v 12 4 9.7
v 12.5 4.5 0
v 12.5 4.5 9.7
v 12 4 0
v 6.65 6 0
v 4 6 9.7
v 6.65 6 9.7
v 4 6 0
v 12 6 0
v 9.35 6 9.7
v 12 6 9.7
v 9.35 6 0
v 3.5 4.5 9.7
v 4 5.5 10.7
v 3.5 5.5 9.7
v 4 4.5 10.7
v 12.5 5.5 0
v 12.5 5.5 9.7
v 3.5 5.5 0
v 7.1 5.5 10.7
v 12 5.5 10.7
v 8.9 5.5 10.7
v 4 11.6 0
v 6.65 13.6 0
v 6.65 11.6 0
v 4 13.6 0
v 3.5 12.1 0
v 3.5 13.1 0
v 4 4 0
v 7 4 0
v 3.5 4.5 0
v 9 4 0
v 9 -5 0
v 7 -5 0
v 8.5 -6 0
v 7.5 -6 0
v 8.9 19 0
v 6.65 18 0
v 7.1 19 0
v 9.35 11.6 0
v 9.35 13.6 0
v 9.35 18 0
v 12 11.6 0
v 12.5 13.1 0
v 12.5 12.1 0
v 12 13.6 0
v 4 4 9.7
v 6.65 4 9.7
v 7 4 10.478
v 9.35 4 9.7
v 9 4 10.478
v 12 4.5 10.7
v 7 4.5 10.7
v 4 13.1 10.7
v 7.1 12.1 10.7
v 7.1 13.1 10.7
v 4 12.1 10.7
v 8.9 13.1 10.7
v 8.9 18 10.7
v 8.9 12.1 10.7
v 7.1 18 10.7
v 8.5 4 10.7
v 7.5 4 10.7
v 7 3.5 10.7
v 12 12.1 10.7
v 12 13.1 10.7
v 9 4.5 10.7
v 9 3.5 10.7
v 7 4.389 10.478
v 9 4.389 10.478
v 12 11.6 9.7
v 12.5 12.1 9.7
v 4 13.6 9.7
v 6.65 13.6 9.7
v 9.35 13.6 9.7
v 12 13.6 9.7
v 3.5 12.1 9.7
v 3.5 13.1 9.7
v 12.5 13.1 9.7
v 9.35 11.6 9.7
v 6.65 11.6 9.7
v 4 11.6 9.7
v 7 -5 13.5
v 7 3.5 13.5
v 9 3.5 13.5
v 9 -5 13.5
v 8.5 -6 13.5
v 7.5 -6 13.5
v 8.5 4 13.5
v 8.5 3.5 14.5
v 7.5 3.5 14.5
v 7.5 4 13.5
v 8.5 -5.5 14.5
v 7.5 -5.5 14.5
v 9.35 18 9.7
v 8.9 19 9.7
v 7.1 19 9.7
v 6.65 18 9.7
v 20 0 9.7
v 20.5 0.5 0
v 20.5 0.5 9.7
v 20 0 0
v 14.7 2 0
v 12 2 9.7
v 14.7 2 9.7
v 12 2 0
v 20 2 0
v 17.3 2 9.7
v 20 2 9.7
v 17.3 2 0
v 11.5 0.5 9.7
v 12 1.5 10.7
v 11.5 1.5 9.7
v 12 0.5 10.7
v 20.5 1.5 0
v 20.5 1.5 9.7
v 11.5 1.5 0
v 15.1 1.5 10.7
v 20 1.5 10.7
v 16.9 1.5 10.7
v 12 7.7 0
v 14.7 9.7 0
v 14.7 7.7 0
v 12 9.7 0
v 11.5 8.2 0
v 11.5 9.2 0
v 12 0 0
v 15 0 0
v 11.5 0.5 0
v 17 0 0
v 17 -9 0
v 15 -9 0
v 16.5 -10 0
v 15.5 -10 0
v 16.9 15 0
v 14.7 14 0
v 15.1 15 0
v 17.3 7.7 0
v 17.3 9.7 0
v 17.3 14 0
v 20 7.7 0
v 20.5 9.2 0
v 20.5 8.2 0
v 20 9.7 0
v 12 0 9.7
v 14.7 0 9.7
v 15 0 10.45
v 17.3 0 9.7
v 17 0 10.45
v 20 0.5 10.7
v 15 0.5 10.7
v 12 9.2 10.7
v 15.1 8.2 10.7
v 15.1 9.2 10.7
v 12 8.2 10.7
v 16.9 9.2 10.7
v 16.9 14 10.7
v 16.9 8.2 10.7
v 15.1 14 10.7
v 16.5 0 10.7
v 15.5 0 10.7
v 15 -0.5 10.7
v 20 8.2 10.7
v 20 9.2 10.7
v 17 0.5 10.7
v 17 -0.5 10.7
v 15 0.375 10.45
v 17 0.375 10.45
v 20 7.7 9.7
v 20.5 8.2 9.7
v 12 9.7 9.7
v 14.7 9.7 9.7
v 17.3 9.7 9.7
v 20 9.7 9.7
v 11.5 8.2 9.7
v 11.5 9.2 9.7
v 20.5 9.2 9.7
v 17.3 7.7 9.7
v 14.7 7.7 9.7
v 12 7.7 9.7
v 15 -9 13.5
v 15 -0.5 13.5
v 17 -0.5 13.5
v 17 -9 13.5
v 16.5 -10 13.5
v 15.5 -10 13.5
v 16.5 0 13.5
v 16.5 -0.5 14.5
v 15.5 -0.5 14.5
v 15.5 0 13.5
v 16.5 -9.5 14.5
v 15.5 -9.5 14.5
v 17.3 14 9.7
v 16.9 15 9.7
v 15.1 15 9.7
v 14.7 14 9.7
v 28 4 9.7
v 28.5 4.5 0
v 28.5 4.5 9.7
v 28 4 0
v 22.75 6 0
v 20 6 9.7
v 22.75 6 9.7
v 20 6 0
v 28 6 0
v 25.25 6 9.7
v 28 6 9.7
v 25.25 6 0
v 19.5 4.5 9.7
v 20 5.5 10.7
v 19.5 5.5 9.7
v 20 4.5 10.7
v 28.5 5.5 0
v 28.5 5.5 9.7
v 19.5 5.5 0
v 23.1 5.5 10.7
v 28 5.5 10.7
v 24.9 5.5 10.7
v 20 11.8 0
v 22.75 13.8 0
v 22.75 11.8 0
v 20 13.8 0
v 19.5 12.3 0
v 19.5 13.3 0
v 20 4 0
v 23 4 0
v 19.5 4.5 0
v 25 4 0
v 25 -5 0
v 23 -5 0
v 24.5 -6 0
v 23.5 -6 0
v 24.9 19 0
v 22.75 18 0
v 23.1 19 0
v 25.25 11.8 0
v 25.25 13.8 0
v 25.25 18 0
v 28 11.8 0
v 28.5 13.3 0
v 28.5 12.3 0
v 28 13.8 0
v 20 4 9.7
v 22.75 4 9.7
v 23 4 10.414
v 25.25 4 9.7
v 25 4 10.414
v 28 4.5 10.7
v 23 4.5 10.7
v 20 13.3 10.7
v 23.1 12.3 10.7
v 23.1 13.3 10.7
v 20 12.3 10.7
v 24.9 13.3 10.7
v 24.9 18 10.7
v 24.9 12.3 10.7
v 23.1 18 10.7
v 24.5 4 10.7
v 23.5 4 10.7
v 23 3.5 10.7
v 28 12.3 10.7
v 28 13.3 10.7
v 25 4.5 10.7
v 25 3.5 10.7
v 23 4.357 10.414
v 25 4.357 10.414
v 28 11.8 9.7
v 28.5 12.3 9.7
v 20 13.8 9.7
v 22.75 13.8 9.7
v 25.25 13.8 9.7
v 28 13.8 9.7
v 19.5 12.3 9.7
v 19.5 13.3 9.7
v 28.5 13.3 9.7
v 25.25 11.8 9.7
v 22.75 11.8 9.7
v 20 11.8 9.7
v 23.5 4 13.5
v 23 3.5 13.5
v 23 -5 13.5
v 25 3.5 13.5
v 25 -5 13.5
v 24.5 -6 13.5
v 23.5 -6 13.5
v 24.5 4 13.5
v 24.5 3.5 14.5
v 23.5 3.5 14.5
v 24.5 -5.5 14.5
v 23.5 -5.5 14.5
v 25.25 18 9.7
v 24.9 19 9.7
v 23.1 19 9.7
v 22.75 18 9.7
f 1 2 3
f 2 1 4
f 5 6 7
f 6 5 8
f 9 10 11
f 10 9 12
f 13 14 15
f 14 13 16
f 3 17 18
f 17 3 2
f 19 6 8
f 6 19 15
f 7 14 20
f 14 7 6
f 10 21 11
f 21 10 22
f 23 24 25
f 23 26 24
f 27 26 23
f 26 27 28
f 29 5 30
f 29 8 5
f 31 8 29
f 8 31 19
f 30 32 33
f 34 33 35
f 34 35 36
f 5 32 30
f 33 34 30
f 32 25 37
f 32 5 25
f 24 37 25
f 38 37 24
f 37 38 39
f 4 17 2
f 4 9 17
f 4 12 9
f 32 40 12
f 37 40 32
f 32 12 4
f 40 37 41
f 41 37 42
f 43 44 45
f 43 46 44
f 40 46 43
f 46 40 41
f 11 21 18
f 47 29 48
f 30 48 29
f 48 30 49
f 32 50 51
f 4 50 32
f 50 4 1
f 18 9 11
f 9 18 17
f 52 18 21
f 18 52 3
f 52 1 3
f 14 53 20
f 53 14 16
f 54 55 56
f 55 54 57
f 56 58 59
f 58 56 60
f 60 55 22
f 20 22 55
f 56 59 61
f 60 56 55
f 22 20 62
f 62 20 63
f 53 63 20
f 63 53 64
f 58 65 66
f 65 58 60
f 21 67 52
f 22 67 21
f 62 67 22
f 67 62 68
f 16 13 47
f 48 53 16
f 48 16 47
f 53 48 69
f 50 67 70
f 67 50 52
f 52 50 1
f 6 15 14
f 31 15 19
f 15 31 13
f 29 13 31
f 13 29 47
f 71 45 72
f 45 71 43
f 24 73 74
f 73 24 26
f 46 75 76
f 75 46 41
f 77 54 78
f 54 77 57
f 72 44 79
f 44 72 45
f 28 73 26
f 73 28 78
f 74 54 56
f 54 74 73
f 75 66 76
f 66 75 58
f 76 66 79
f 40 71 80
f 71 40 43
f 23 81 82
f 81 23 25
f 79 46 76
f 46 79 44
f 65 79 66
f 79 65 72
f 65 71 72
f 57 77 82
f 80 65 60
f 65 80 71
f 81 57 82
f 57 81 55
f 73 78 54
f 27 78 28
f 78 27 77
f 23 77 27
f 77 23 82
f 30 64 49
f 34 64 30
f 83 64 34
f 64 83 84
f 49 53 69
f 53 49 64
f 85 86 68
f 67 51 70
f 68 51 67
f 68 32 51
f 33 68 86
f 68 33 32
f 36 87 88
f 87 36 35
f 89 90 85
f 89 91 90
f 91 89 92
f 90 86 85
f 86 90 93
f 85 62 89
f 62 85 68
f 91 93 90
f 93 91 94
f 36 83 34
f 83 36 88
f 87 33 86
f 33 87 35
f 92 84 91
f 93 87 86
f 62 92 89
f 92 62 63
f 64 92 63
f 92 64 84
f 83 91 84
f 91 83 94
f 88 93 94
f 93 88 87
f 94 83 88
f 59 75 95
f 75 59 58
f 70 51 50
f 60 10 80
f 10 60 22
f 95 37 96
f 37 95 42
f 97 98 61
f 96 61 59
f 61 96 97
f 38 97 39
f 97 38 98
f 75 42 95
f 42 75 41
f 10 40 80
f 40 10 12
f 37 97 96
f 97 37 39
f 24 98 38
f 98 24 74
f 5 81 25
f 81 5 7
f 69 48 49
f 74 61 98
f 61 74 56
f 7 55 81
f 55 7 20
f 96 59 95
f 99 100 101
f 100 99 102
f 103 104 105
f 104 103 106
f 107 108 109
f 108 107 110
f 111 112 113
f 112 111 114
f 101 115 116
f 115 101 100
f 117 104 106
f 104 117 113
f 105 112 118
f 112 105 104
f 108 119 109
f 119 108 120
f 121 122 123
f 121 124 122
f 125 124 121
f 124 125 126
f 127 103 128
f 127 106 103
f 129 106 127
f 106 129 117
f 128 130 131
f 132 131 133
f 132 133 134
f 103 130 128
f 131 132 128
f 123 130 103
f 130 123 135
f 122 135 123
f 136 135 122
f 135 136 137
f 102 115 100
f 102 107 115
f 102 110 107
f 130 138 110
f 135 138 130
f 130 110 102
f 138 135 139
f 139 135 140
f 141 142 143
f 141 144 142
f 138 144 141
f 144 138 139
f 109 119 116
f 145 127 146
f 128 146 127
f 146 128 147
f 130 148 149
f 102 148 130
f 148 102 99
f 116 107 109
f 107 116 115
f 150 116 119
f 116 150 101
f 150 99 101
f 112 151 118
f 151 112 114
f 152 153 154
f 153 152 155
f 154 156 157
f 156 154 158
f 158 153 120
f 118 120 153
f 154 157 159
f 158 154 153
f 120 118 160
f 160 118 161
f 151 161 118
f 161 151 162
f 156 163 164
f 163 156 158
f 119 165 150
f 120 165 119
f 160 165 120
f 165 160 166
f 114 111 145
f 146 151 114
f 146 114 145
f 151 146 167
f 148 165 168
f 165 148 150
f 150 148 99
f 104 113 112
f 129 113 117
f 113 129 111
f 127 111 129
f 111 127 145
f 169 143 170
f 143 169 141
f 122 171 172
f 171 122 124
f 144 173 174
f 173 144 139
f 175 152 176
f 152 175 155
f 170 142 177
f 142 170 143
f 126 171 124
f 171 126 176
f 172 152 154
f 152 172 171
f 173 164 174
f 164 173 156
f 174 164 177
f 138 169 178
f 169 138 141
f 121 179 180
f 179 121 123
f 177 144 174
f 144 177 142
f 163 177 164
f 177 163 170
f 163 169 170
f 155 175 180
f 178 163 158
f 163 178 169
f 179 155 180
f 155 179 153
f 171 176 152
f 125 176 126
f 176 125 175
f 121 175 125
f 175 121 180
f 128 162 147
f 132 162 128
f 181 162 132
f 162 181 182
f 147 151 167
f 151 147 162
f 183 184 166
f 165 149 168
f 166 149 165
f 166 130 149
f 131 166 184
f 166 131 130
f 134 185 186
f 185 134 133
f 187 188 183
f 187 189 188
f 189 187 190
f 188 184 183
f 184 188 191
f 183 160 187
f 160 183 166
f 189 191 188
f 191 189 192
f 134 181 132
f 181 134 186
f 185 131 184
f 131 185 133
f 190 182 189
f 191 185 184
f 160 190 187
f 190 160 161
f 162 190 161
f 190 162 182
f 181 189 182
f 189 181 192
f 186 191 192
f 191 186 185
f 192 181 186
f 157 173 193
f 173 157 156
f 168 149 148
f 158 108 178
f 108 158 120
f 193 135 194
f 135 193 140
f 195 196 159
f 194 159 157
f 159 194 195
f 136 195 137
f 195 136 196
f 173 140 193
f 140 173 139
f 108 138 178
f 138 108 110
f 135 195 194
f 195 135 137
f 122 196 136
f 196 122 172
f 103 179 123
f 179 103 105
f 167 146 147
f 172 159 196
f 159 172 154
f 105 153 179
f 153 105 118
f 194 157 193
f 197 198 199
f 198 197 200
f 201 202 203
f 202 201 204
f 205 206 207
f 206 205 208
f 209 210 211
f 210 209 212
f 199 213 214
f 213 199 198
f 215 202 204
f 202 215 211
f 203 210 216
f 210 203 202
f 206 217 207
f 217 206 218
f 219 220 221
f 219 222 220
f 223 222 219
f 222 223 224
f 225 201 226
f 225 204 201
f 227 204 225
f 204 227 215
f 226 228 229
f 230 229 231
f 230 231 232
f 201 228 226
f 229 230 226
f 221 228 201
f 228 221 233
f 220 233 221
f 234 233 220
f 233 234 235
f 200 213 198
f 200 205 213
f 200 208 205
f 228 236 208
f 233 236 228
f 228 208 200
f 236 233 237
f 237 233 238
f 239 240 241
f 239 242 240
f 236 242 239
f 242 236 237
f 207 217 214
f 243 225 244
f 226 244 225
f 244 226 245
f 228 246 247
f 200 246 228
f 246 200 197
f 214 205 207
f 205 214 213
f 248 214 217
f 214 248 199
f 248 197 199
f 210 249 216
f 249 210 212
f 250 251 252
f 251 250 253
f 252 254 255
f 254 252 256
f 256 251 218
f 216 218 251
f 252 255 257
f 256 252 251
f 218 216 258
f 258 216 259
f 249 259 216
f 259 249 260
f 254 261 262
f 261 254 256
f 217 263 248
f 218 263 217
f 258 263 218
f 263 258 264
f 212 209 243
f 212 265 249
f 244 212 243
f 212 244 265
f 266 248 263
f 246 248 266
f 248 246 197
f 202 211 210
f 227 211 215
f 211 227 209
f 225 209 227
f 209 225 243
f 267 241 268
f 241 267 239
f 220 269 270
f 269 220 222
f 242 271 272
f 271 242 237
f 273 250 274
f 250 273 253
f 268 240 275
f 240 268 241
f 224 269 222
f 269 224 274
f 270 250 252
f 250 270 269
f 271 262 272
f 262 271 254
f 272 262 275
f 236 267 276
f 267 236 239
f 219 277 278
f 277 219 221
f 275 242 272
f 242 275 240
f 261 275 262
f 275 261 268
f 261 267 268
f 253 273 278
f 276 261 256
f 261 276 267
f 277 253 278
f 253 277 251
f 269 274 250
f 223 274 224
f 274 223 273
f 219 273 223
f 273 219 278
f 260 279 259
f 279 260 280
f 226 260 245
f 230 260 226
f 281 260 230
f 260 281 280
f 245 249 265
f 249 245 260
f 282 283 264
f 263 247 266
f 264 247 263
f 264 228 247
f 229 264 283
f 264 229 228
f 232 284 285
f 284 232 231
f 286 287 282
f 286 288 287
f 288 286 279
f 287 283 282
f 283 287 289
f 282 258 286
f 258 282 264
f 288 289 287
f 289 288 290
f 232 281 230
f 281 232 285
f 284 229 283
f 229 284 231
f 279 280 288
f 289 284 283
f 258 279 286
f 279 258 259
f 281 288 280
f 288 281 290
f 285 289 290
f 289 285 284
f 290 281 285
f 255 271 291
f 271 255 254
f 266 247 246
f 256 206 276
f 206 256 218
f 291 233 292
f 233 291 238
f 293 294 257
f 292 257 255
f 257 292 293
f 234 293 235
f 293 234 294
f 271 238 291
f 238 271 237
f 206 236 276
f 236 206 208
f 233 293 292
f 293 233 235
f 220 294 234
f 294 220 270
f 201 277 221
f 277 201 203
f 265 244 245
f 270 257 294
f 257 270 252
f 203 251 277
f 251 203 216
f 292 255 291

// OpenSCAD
// file: ../../lib.scad
highRes=false;
justOnePart="";

module part(partName,
            s=[0,0,0], r=[0,0,0],
            sReset=[0,0,0], rReset=[0,0,0],
            label=false){
    echo(partName, "$part")
    if (justOnePart == ""){
        translate(s)
            rotate(r)
            children();
        if (label) {
            translate([150,0,0])
                text(partName,
                        font = "Roboto Condensed:style=Light",
                        size = 7,
                        halign = "center");
        }
    } else if (justOnePart == partName) {
        $fa = 1;
        $fs = 0.4;
        translate(sReset)
            rotate(rReset)
            children();
    }
}

module noPart(c=undef){
    if (justOnePart == ""){
        color(c)
        children();
    }
}

module roundCube(dimensions, r=1, fn=0, center=true, inner=false) {
    if (r==0) {
        cube(dimensions, center=center);
    } else {
        x=dimensions[0];
        y=dimensions[1];
        z=dimensions[2];
        translate(center ? [0,0,0] : [x/2, y/2, z/2])
            hull()
                for (xyz=[[1,1,1],[1,1,-1],[1,-1,1],[1,-1,-1],[-1,1,1],[-1,1,-1],[-1,-1,1],[-1,-1,-1]]){
                    translate([xyz[0]*(x/2 - (inner ? r : 0)),
                               xyz[1]*(y/2 - (inner ? r : 0)),
                               xyz[2]*(z/2 - (inner ? r : 0))])
                        sphere(r=r, $fn=fn);
                }
    }
}

module mirrorAndKeep(m) {
    children();
    mirror(m) children();
}

module mirrorAndKeeps(ms) {
    children();
    for(m = ms)
        mirror(m) children();
}
// main file
include <../../lib.scad>
module v1() {
    translate([-1,-10,0])
        cube([2,10,14.5]);
    translate([-1,-10,0])
        cube([2,10,14.5]);

    translate([-1.4,0,0])
        cube([2.8,15,10.7]);

    translate([-4.5,0,0])
        cube([9,2,10.7]);
    translate([-4.5,5.5+2,0])
        cube([9,2,10.7]);
}

module v2(e=0) {
    hull() {
        translate([-0.5,-10,0])
            cube([1,10,13.5]);
        translate([-0.5,-9.5,0])
            cube([1,9,14.5]);
        translate([-1,-9,0])
            cube([2,8.5,13.5]);
    }
    translate([-1,-3,0])
        cube([2,4,10.7]);

    hull() {
        translate([-0.9,0,0])
            cube([1.8,14,10.7]);
        translate([-0.9,0,0])
            cube([1.8,15,9.7]);
        translate([-1.4+e/2,0,0])
            cube([2.8 -e,14,9.7]);
    }

    for(t=[0,5.5+2+e]) {
        translate([0,t,0])
            hull() {
                translate([-4,0,0])
                    cube([8,2,9.7]);
                translate([-4,0.5,0])
                    cube([8,1,10.7]);
                translate([-4.5,0.5,0])
                    cube([9,1,9.7]);
            }
    }
}

/* v2(); */
translate([8,4,0]) v2(e=0.1);
translate([16,0,0]) v2(e=0.2);
translate([24,4,0]) v2(e=0.3);

if ($preview) {
    translate([0,30,0])
    difference() {
        v1();
        v2();
    }
}
